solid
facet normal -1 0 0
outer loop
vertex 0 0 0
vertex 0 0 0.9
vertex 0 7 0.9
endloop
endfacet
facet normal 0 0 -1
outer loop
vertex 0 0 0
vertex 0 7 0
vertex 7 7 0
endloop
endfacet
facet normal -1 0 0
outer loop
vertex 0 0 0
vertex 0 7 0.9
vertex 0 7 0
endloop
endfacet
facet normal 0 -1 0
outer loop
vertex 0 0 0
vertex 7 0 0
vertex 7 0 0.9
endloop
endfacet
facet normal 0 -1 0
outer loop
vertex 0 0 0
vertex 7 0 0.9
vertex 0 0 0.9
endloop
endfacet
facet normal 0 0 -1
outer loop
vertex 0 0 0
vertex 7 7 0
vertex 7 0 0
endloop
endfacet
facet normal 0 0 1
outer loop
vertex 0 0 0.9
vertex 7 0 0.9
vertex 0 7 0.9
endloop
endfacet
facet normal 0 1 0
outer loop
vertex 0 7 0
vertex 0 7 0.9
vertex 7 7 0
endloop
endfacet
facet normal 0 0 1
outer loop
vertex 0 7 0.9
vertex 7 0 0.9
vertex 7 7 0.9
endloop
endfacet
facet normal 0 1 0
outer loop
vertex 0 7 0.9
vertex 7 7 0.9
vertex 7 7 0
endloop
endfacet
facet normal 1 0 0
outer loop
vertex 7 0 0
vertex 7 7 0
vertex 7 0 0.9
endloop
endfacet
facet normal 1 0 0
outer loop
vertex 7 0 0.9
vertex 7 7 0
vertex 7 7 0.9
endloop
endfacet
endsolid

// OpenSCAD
/* Warning, this is a very basic generator with a lot of approximation 
input data : [VQFN, UZX, 7x7x0.9mm, 56, , A, C04-00342A]
generated by com.zoubworld.electronics.cad.model3d.Basic
Date : Sun Feb 15 10:50:48 CET 2026
*/

//body
color("black")
translate([0,0,0])
cube([7.0,7.0,0.9], center=false);
